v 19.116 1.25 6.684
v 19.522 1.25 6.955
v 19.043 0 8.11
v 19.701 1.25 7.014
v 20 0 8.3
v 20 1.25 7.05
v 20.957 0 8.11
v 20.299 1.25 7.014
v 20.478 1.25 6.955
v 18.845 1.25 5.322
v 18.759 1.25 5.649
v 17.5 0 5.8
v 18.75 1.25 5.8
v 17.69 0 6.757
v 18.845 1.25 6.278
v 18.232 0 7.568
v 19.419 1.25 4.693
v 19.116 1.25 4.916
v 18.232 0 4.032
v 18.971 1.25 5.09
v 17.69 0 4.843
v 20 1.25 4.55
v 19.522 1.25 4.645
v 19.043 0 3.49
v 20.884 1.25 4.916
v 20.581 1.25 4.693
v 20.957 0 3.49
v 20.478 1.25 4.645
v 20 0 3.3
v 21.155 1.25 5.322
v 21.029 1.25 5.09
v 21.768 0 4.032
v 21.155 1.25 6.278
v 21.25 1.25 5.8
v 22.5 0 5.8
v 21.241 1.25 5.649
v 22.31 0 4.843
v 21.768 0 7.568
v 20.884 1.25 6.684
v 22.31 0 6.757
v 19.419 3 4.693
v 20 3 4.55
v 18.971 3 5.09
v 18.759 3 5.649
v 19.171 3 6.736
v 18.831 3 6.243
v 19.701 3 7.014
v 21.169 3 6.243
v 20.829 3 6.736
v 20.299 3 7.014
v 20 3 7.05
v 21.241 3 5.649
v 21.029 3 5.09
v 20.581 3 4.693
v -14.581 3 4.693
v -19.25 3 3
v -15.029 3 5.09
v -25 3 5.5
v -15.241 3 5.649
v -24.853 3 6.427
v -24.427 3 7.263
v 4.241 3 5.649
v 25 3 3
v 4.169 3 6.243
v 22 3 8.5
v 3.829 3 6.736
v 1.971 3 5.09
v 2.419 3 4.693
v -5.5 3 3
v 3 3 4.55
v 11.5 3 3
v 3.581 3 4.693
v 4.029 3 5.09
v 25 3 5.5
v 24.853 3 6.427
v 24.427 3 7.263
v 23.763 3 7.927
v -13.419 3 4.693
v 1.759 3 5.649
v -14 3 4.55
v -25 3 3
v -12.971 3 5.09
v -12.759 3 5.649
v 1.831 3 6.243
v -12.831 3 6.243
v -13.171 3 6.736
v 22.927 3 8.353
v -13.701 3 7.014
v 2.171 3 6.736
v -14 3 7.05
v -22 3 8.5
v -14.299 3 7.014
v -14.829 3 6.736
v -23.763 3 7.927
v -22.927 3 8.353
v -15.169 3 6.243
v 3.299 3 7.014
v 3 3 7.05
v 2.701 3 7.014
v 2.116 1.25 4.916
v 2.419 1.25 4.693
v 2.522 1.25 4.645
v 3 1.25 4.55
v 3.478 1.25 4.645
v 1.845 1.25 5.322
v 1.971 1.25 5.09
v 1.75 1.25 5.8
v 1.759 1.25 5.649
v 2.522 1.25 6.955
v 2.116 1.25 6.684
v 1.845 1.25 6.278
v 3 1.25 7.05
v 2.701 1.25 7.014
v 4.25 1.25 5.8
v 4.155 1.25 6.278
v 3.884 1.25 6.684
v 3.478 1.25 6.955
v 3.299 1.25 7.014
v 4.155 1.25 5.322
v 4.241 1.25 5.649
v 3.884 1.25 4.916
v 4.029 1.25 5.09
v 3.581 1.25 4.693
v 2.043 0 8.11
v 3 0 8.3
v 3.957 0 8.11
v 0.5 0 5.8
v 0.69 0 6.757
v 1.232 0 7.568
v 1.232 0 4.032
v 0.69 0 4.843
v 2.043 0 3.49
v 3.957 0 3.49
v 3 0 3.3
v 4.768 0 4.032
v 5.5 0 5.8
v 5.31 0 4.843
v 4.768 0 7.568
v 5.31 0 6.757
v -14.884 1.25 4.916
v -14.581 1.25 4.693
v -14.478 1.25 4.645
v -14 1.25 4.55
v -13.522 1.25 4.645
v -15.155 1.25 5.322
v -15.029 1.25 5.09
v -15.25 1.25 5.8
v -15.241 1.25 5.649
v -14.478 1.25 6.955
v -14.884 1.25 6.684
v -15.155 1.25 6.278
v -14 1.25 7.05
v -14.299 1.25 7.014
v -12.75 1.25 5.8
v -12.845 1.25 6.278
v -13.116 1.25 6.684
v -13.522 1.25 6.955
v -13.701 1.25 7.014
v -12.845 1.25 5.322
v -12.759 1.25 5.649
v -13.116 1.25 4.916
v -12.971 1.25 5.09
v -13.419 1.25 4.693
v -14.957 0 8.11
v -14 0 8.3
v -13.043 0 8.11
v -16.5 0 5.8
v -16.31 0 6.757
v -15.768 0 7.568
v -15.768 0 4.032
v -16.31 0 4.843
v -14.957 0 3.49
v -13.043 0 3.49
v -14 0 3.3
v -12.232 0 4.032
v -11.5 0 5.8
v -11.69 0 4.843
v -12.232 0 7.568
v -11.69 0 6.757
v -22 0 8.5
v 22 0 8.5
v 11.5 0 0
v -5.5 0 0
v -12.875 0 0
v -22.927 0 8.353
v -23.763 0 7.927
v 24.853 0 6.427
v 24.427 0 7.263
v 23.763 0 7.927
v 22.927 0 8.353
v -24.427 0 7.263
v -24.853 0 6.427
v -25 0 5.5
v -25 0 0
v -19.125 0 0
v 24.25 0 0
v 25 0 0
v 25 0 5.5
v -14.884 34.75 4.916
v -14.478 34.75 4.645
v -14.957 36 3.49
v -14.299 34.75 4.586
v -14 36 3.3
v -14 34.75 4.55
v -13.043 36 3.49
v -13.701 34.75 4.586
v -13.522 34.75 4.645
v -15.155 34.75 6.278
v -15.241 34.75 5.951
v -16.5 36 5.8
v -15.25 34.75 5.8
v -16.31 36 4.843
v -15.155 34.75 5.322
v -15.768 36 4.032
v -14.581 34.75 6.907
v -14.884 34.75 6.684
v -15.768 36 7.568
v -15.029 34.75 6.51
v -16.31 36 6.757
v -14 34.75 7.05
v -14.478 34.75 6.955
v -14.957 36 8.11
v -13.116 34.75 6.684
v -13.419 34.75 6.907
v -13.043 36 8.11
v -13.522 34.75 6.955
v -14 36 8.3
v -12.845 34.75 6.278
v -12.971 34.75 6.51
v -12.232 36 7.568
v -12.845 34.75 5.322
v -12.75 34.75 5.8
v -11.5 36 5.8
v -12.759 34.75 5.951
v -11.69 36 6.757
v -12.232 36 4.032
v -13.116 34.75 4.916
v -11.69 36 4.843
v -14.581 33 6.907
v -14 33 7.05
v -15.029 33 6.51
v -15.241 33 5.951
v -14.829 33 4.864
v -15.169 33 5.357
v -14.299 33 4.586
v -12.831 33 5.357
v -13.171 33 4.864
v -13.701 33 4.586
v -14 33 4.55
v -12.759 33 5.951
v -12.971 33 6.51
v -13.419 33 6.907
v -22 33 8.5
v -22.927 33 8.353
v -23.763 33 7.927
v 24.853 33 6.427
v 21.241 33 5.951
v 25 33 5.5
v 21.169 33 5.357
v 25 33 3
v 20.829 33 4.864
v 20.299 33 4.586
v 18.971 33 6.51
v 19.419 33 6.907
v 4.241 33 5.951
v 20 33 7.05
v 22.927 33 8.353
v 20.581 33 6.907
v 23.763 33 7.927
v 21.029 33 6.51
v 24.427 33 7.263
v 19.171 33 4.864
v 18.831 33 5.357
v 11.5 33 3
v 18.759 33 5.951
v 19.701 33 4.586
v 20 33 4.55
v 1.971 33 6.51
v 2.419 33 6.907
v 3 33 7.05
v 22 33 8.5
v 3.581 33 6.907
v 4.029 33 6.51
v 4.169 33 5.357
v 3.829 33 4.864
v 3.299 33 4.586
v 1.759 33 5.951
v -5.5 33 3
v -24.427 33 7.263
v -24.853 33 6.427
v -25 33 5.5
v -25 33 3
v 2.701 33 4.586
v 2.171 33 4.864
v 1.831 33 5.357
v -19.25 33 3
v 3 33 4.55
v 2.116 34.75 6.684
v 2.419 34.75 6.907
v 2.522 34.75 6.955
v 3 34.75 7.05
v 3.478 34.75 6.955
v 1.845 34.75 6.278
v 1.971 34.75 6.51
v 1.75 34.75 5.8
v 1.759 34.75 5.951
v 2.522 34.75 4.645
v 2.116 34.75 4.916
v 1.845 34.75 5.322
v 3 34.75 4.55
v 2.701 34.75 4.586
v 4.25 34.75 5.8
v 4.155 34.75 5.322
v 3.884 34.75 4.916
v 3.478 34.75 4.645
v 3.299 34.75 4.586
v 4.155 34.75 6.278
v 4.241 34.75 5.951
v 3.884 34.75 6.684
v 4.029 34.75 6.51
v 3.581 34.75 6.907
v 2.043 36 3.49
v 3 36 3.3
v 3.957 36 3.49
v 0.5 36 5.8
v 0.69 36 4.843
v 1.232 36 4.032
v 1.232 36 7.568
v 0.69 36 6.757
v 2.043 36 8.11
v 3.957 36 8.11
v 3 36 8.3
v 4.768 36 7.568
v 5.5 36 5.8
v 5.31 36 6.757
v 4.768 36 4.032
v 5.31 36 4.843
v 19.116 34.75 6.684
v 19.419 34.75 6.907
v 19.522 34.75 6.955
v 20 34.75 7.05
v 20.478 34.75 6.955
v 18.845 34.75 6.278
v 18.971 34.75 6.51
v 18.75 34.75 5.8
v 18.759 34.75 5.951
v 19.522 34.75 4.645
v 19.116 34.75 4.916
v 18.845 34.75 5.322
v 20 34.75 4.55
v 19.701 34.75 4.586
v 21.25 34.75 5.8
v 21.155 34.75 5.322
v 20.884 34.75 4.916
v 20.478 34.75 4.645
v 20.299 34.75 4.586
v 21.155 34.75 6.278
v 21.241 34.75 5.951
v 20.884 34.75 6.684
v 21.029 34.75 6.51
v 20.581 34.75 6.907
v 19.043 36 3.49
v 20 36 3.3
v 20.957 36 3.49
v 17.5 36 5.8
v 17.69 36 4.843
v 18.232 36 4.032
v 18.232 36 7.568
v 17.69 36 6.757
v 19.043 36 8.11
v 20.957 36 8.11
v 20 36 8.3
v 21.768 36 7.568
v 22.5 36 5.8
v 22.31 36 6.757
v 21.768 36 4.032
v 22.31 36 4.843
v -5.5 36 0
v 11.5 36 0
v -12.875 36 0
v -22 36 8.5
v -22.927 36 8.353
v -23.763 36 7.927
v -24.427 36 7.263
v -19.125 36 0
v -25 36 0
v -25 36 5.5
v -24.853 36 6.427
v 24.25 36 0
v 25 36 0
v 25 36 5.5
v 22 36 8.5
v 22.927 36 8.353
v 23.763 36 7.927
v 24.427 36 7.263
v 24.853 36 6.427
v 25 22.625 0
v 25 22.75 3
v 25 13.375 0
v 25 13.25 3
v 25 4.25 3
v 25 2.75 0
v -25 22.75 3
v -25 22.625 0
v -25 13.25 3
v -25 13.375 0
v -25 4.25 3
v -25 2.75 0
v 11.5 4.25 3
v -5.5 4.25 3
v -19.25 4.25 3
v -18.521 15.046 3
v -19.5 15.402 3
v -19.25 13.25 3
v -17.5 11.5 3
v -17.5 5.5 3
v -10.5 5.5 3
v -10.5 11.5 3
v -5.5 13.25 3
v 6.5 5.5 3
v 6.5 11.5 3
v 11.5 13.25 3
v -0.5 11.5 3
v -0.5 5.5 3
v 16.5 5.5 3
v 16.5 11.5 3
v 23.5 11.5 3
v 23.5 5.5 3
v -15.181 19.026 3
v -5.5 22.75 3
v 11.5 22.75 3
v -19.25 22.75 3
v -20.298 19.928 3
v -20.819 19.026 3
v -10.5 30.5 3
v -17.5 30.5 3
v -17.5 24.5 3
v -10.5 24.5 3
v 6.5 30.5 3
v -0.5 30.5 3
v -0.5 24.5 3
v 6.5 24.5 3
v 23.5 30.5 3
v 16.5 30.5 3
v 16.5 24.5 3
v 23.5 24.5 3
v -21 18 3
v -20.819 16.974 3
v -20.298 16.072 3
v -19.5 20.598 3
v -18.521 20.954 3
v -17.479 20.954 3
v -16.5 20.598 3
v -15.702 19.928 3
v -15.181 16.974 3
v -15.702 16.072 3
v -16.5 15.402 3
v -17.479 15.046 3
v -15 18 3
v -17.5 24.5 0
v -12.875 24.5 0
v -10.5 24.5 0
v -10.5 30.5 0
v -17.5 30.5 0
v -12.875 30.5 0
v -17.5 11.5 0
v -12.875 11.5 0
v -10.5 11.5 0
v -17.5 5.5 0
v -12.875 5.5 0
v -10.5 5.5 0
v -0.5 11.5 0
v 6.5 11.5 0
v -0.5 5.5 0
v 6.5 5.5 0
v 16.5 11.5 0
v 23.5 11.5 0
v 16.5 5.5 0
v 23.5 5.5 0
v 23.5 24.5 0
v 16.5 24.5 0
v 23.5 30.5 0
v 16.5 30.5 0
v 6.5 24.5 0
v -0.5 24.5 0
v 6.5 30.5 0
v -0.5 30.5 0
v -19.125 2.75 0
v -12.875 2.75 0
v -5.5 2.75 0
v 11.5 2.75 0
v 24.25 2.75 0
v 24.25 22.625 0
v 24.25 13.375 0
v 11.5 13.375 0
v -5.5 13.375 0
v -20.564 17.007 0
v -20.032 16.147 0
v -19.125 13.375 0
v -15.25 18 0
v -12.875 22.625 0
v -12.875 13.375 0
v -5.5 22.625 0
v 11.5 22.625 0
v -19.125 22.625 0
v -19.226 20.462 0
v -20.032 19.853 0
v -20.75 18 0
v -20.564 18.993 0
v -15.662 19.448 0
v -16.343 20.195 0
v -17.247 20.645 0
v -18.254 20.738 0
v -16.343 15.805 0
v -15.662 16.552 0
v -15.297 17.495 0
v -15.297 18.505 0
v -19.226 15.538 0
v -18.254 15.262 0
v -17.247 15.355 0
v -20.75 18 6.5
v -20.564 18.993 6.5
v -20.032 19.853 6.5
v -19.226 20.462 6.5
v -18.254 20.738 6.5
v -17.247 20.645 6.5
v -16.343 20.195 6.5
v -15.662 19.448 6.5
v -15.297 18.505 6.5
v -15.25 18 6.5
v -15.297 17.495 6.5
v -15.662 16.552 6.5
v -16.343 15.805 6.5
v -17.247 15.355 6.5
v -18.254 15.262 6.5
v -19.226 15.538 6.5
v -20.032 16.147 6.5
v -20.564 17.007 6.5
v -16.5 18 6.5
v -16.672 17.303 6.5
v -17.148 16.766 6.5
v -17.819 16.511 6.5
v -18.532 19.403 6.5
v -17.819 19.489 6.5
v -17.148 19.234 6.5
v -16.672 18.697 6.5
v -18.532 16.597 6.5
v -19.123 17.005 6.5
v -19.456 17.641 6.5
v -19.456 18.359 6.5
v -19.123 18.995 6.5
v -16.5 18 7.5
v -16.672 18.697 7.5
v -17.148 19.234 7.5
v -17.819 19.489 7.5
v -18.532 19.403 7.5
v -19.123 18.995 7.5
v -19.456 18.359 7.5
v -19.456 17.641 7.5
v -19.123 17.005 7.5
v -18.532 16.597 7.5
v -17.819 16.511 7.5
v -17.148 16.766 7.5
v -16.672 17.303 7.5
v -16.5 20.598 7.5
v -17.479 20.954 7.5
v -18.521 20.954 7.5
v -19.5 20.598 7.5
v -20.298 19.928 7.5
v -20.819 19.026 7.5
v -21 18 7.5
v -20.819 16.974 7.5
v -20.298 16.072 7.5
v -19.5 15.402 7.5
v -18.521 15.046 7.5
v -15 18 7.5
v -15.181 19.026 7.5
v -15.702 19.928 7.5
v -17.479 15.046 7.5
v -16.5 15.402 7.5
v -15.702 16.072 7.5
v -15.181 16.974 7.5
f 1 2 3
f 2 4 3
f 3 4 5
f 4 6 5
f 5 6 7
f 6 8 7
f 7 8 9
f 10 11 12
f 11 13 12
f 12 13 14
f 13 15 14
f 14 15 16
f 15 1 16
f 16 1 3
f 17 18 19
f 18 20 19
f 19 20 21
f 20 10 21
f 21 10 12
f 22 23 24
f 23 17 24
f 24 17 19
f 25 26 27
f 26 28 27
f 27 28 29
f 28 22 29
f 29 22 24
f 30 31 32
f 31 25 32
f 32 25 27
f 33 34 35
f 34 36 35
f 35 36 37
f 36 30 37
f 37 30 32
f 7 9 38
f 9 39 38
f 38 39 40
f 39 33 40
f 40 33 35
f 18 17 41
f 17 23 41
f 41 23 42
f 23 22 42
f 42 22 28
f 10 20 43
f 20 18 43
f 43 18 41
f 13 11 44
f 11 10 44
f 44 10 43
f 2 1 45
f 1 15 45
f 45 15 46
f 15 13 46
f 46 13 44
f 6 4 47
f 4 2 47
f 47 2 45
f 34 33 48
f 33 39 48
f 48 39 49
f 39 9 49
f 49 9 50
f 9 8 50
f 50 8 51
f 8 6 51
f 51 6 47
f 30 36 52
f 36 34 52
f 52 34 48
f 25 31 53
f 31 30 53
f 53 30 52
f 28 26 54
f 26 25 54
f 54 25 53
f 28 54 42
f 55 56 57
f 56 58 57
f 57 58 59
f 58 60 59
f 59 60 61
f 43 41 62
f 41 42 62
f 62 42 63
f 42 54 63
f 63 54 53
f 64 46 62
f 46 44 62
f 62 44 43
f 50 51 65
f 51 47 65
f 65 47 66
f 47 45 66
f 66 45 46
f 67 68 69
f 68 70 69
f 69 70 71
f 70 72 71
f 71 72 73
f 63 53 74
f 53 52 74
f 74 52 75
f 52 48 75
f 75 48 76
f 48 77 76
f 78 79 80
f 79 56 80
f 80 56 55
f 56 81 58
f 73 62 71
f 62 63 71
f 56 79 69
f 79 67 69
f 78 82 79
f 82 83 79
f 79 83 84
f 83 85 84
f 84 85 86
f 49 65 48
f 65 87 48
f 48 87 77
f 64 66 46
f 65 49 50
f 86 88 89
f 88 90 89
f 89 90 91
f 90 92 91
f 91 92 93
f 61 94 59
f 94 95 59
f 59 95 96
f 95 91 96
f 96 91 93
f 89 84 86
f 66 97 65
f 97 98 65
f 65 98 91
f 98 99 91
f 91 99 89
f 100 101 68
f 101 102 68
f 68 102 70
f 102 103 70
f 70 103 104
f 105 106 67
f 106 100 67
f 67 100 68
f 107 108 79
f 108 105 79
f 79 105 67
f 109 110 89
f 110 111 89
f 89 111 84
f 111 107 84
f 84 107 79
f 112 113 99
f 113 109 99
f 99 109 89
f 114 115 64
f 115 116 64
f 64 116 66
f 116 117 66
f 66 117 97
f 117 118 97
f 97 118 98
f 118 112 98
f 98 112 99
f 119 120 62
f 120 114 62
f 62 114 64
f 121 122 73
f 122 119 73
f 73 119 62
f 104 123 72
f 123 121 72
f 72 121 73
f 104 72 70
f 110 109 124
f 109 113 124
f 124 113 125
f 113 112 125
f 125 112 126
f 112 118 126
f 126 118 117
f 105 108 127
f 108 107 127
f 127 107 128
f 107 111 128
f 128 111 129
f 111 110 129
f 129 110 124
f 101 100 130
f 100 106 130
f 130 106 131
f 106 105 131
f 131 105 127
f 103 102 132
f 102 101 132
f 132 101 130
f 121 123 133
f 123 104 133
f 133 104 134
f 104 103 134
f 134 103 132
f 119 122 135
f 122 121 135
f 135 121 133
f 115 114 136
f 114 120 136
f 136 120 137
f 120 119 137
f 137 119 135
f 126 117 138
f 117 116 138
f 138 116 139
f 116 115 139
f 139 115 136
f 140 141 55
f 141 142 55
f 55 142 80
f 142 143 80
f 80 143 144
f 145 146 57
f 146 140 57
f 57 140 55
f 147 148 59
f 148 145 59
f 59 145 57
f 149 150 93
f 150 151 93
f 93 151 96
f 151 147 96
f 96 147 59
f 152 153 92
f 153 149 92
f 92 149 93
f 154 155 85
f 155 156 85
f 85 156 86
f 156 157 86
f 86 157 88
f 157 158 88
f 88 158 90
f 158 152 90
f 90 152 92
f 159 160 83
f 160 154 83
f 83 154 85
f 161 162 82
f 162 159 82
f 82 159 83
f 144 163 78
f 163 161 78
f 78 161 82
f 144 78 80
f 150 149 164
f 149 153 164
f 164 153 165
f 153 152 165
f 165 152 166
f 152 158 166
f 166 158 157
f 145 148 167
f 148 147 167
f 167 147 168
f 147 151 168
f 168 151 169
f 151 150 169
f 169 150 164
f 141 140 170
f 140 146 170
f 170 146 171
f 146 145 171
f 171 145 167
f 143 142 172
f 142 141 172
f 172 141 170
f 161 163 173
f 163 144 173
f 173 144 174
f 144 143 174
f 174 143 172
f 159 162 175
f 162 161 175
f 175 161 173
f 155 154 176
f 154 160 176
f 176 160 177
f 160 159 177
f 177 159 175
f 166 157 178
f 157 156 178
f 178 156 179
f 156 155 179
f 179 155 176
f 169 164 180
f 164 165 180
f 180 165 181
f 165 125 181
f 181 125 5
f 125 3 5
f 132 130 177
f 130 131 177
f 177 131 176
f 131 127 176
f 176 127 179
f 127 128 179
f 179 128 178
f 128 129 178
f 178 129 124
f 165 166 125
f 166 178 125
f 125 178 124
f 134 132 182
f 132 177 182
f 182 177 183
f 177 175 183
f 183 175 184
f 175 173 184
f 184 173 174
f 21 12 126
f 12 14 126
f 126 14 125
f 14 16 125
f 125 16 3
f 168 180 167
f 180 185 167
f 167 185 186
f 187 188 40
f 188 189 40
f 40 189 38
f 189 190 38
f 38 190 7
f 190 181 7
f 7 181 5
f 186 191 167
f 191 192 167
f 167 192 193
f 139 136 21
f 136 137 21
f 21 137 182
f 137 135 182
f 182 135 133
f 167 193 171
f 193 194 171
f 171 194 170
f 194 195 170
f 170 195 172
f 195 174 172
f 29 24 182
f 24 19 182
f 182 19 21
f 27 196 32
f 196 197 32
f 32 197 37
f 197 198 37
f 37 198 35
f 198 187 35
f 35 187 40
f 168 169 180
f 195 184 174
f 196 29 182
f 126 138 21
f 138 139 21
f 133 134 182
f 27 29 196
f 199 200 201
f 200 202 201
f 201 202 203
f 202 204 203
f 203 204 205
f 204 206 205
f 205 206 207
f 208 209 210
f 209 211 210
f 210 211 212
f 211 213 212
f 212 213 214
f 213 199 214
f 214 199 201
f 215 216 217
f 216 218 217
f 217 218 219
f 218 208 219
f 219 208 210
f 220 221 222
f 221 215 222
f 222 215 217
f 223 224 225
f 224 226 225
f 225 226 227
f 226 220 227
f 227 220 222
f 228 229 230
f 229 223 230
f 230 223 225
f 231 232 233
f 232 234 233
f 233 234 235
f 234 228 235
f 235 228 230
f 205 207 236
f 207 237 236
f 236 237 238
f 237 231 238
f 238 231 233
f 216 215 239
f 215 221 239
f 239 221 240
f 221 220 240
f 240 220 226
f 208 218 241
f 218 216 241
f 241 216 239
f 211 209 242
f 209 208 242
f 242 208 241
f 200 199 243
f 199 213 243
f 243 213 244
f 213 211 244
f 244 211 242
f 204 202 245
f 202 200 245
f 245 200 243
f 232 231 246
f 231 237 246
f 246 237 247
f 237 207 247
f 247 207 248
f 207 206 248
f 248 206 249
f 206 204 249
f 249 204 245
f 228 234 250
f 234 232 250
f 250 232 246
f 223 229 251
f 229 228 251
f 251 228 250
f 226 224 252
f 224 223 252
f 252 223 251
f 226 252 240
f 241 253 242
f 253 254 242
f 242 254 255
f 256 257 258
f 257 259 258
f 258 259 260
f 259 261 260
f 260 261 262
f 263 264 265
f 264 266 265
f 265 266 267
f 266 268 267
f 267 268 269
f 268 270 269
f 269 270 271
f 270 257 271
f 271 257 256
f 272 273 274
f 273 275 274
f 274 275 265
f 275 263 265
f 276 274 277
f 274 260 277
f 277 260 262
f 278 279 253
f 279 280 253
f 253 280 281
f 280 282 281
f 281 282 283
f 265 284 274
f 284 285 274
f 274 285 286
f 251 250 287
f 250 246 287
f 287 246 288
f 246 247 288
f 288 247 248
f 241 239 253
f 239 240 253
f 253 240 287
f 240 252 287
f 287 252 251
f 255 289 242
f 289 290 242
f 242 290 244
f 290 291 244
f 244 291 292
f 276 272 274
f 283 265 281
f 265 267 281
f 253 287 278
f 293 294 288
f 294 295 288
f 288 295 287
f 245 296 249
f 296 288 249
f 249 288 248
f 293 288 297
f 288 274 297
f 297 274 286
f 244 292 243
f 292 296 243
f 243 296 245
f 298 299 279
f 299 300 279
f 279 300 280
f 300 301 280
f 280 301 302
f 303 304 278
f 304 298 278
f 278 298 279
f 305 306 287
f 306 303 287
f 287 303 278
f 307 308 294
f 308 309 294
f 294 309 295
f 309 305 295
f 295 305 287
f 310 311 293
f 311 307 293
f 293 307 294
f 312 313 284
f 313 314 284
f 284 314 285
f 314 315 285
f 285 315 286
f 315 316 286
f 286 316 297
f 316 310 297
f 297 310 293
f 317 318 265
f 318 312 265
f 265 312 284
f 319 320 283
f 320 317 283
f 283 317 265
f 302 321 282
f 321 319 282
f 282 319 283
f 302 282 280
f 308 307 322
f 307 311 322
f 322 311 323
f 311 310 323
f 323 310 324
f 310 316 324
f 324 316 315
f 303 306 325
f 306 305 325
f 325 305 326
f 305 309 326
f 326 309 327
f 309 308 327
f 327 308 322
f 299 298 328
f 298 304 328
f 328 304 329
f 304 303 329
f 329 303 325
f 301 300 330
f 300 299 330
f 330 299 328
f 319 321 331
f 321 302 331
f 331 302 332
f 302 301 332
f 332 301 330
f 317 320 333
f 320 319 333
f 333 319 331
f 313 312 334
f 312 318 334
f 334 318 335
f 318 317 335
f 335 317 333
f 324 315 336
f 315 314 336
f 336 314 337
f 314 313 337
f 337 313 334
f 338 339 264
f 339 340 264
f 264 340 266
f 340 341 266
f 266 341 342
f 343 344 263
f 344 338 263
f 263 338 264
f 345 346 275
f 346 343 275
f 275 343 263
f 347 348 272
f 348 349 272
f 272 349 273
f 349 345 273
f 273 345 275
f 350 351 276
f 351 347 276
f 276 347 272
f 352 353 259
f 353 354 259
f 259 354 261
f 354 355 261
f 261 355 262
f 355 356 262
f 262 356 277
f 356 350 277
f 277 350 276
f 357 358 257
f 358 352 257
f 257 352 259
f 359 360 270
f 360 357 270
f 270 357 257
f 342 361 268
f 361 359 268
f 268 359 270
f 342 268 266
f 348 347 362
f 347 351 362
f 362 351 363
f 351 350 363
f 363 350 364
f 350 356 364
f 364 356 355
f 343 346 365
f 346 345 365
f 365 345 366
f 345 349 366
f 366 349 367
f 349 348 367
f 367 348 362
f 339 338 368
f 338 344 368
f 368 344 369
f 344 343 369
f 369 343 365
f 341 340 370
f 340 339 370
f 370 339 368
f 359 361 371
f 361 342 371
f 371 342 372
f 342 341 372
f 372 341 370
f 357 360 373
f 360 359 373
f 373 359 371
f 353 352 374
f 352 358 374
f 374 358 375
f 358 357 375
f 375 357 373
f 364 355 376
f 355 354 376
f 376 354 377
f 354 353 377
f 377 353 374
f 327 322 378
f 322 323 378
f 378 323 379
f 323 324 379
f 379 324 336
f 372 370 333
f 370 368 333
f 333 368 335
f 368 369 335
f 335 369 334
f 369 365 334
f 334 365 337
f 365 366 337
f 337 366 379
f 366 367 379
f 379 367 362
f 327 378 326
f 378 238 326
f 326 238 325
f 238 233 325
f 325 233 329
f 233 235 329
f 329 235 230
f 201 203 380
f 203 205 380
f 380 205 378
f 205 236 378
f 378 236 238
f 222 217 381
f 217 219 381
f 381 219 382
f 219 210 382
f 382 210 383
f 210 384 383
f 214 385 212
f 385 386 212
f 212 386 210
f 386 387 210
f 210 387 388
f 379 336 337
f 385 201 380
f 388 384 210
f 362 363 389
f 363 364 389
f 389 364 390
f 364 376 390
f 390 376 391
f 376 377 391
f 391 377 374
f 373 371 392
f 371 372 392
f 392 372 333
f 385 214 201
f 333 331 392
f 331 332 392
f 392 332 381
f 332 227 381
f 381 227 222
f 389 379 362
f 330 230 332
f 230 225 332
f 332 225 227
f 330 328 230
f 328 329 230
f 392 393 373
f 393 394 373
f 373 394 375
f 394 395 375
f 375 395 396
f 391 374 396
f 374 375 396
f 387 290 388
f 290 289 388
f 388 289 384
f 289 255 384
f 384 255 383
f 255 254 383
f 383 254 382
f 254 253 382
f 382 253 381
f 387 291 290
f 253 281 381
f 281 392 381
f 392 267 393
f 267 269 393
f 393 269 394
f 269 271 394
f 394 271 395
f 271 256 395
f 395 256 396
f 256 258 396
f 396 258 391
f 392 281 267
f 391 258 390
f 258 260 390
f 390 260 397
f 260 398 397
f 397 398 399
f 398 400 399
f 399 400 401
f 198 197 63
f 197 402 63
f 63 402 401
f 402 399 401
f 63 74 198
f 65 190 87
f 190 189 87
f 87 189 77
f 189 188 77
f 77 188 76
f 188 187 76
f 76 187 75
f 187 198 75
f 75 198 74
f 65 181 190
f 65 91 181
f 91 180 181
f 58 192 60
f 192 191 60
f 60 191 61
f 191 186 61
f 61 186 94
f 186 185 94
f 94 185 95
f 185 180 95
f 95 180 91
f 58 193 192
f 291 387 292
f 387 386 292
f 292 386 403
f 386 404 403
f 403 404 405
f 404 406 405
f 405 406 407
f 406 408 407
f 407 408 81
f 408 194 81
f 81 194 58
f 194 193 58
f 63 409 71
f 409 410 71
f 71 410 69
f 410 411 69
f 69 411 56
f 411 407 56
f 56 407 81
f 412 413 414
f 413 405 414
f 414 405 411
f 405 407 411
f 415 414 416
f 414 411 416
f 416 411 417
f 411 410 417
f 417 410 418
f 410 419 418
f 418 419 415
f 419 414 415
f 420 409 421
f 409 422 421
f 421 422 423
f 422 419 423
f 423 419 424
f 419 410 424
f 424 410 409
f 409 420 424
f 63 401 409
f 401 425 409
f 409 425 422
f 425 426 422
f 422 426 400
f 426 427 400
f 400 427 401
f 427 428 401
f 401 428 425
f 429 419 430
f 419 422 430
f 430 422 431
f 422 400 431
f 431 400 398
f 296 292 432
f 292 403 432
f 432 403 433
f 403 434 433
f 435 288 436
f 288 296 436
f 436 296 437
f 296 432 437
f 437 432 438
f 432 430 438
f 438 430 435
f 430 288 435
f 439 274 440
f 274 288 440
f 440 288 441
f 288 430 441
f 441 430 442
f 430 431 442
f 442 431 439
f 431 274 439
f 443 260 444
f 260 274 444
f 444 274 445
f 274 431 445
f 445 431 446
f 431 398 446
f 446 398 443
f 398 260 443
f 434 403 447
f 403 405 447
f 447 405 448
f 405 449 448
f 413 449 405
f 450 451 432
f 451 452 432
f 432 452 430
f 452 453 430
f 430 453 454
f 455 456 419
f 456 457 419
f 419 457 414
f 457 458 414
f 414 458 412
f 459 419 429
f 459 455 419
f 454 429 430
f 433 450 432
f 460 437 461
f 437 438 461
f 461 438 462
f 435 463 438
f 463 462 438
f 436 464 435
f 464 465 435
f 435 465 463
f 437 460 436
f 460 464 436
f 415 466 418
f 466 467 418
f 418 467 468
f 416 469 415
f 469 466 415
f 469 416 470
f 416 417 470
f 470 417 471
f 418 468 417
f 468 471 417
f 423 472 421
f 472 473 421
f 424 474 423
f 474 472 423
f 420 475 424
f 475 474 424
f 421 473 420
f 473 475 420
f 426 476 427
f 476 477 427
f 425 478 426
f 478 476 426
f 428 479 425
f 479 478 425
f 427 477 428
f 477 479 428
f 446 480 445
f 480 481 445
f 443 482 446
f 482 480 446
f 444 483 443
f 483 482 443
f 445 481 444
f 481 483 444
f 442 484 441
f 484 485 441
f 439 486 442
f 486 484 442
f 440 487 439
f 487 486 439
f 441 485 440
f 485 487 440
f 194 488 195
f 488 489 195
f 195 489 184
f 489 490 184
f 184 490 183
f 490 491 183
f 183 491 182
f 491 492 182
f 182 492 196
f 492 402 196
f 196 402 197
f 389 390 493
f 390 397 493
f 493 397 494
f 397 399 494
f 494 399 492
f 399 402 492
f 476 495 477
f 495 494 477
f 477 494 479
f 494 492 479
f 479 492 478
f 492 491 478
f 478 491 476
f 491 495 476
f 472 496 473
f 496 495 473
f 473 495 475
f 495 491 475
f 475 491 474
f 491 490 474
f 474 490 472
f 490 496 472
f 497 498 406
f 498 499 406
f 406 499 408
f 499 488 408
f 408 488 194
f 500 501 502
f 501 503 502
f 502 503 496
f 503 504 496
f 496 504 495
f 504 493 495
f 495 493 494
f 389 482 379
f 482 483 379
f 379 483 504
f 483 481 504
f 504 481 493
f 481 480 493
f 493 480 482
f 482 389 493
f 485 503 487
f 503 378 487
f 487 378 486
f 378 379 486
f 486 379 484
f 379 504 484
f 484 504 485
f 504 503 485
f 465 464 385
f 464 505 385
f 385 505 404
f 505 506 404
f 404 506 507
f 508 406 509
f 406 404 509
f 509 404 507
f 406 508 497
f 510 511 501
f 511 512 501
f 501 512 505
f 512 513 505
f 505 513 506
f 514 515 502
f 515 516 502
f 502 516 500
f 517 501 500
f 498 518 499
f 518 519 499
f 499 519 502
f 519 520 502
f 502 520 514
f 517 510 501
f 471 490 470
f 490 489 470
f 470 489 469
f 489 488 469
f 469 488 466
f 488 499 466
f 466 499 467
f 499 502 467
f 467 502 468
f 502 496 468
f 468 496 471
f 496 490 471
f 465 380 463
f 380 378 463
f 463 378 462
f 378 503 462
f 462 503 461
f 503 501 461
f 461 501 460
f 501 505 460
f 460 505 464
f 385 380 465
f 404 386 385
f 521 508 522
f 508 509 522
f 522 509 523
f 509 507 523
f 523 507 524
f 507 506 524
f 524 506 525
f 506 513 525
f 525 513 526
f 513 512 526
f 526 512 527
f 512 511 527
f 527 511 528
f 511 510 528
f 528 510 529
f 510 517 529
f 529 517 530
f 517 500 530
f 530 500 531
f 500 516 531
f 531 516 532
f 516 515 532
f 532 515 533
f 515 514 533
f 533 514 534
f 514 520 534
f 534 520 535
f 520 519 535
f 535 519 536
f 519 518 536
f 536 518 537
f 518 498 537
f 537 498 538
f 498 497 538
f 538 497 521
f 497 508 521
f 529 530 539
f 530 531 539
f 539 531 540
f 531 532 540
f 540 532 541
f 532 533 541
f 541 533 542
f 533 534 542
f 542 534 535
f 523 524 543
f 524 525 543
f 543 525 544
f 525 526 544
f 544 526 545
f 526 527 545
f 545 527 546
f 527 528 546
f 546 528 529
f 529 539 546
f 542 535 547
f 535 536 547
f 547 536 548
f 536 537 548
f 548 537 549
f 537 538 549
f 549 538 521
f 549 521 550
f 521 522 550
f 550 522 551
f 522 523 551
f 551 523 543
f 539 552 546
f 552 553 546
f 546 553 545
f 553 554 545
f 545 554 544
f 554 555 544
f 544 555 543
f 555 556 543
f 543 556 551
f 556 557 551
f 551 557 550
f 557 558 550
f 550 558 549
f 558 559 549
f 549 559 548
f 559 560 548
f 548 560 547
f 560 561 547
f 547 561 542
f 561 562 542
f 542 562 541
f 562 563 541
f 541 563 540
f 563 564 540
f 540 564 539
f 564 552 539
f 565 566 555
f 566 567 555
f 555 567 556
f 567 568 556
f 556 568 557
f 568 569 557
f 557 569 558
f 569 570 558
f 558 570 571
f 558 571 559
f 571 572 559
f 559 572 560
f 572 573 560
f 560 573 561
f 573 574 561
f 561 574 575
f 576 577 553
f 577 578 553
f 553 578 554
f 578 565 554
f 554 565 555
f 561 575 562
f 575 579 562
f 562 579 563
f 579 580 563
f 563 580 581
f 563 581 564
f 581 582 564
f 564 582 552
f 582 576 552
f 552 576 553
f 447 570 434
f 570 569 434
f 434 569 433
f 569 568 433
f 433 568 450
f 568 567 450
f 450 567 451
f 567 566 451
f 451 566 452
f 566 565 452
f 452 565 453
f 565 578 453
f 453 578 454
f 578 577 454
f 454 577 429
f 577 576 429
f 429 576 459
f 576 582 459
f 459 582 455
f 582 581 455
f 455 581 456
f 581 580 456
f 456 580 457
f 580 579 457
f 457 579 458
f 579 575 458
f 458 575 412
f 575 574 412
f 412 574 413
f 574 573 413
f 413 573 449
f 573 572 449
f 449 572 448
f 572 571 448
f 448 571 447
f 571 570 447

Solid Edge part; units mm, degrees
sketch "Sketch1" plane through (0, 0, 0) normal (0, -1, 0) x (1, 0, 0)
  line L0 (-25, 0) -> (25, 0)
  line L1 (25, 0) -> (25, 8.5)
  line L2 (25, 8.5) -> (-25, 8.5)
  line L3 (-25, 8.5) -> (-25, 0)
  dimension "D1" = 8.5
  dimension "D2" = 50
extrude "Protrusion1" add sketch "Sketch1" against normal blind 36
sketch "Sketch2" plane through (-25, 15, 5) normal (-1, 0, 0) x (0, -1, 0)
  line L0 (-18, 3.5) -> (12, 3.5)
  line L1 (12, 3.5) -> (12, -2)
  line L2 (12, -2) -> (-18, -2)
  line L3 (-18, -2) -> (-18, 3.5)
  dimension "D1" = 3
  dimension "D2" = 30
extrude "Cutout1" cut sketch "Sketch2" against normal through all
sketch "Sketch3" plane through (0, 15, 3) normal (0, 0, 1) x (1, 0, 0)
  circle A0 centre (-18, 3) radius 3
  dimension "D1" = 6
  dimension "D2" = 7
extrude "ExtrudedProtrusion_2" add sketch "Sketch3" along normal blind 4.5
sketch "Sketch4" plane through (0, 15, 0) normal (0, 0, -1) x (1, 0, 0)
  circle A0 centre (-18, -3) radius 2.75
  dimension "D1" = 5.5
extrude "ExtrudedCutout_2" cut sketch "Sketch4" against normal blind 6.5
sketch "Sketch5" plane through (-15, 15, 7.5) normal (0, 0, 1) x (1, 0, 0)
  circle A0 centre (-3, 3) radius 1.5
  dimension "D1" = 3
extrude "Cutout2" cut sketch "Sketch5" against normal through all
extrude "Cutout3" [suppressed]
extrude "Cutout4" [suppressed]
fillet "Round_1" radius 3 4 edges at (-25, 1.5, 8.5) (-25, 34.5, 8.5) (25, 1.5, 8.5) (25, 34.5, 8.5)
chamfer "Chamfer_1" [suppressed]
hole "Hole_1" at (-14, 0, 5.8) direction (0, 1, 0) diameter 2.5 end up to next countersink diameter 5 countersink angle 90
hole "Hole1" at (3, 0, 5.8) direction (0, 1, 0) diameter 2.5 end up to next countersink diameter 5 countersink angle 90
hole "Hole2" at (20, 0, 5.8) direction (0, 1, 0) diameter 2.5 end up to next countersink diameter 5 countersink angle 90
hole "Hole_4" at (20, 36, 5.8) direction (0, -1, 0) diameter 2.5 end up to next countersink diameter 5 countersink angle 90
hole "Hole3" at (3, 36, 5.8) direction (0, -1, 0) diameter 2.5 end up to next countersink diameter 5 countersink angle 90
hole "Hole4" at (-14, 36, 5.8) direction (0, -1, 0) diameter 2.5 end up to next countersink diameter 5 countersink angle 90
sketch "Sketch6" plane through (0, 18, 3) normal (0, 0, 1) x (1, 0, 0)
  line L0 (-0.5, 12.5) -> (6.5, 12.5)
  line L1 (6.5, 12.5) -> (6.5, 6.5)
  line L2 (6.5, 6.5) -> (-0.5, 6.5)
  line L3 (-0.5, 6.5) -> (-0.5, 12.5)
  line L4 (16.5, 12.5) -> (23.5, 12.5)
  line L5 (23.5, 12.5) -> (23.5, 6.5)
  line L6 (23.5, 6.5) -> (16.5, 6.5)
  line L7 (16.5, 6.5) -> (16.5, 12.5)
  line L8 (23.5, -12.5) -> (16.5, -12.5)
  line L9 (16.5, -12.5) -> (16.5, -6.5)
  line L10 (16.5, -6.5) -> (23.5, -6.5)
  line L11 (23.5, -6.5) -> (23.5, -12.5)
  line L12 (6.5, -12.5) -> (-0.5, -12.5)
  line L13 (-0.5, -12.5) -> (-0.5, -6.5)
  line L14 (-0.5, -6.5) -> (6.5, -6.5)
  line L15 (6.5, -6.5) -> (6.5, -12.5)
  line L16 (-10.5, -12.5) -> (-17.5, -12.5)
  line L17 (-17.5, -12.5) -> (-17.5, -6.5)
  line L18 (-17.5, -6.5) -> (-10.5, -6.5)
  line L19 (-10.5, -6.5) -> (-10.5, -12.5)
  line L20 (-17.5, 12.5) -> (-10.5, 12.5)
  line L21 (-10.5, 12.5) -> (-10.5, 6.5)
  line L22 (-10.5, 6.5) -> (-17.5, 6.5)
  line L23 (-17.5, 6.5) -> (-17.5, 12.5)
  dimension "D1" = 5
  dimension "D2" = 7
  dimension "D3" = 6
  dimension "D4" = 2.5
  dimension "D5" = 17
  dimension "D6" = 2.5
  dimension "D7" = 17
extrude "Cutout5" cut sketch "Sketch6" against normal through all
properties material "ABS Plastic, medium impact"
